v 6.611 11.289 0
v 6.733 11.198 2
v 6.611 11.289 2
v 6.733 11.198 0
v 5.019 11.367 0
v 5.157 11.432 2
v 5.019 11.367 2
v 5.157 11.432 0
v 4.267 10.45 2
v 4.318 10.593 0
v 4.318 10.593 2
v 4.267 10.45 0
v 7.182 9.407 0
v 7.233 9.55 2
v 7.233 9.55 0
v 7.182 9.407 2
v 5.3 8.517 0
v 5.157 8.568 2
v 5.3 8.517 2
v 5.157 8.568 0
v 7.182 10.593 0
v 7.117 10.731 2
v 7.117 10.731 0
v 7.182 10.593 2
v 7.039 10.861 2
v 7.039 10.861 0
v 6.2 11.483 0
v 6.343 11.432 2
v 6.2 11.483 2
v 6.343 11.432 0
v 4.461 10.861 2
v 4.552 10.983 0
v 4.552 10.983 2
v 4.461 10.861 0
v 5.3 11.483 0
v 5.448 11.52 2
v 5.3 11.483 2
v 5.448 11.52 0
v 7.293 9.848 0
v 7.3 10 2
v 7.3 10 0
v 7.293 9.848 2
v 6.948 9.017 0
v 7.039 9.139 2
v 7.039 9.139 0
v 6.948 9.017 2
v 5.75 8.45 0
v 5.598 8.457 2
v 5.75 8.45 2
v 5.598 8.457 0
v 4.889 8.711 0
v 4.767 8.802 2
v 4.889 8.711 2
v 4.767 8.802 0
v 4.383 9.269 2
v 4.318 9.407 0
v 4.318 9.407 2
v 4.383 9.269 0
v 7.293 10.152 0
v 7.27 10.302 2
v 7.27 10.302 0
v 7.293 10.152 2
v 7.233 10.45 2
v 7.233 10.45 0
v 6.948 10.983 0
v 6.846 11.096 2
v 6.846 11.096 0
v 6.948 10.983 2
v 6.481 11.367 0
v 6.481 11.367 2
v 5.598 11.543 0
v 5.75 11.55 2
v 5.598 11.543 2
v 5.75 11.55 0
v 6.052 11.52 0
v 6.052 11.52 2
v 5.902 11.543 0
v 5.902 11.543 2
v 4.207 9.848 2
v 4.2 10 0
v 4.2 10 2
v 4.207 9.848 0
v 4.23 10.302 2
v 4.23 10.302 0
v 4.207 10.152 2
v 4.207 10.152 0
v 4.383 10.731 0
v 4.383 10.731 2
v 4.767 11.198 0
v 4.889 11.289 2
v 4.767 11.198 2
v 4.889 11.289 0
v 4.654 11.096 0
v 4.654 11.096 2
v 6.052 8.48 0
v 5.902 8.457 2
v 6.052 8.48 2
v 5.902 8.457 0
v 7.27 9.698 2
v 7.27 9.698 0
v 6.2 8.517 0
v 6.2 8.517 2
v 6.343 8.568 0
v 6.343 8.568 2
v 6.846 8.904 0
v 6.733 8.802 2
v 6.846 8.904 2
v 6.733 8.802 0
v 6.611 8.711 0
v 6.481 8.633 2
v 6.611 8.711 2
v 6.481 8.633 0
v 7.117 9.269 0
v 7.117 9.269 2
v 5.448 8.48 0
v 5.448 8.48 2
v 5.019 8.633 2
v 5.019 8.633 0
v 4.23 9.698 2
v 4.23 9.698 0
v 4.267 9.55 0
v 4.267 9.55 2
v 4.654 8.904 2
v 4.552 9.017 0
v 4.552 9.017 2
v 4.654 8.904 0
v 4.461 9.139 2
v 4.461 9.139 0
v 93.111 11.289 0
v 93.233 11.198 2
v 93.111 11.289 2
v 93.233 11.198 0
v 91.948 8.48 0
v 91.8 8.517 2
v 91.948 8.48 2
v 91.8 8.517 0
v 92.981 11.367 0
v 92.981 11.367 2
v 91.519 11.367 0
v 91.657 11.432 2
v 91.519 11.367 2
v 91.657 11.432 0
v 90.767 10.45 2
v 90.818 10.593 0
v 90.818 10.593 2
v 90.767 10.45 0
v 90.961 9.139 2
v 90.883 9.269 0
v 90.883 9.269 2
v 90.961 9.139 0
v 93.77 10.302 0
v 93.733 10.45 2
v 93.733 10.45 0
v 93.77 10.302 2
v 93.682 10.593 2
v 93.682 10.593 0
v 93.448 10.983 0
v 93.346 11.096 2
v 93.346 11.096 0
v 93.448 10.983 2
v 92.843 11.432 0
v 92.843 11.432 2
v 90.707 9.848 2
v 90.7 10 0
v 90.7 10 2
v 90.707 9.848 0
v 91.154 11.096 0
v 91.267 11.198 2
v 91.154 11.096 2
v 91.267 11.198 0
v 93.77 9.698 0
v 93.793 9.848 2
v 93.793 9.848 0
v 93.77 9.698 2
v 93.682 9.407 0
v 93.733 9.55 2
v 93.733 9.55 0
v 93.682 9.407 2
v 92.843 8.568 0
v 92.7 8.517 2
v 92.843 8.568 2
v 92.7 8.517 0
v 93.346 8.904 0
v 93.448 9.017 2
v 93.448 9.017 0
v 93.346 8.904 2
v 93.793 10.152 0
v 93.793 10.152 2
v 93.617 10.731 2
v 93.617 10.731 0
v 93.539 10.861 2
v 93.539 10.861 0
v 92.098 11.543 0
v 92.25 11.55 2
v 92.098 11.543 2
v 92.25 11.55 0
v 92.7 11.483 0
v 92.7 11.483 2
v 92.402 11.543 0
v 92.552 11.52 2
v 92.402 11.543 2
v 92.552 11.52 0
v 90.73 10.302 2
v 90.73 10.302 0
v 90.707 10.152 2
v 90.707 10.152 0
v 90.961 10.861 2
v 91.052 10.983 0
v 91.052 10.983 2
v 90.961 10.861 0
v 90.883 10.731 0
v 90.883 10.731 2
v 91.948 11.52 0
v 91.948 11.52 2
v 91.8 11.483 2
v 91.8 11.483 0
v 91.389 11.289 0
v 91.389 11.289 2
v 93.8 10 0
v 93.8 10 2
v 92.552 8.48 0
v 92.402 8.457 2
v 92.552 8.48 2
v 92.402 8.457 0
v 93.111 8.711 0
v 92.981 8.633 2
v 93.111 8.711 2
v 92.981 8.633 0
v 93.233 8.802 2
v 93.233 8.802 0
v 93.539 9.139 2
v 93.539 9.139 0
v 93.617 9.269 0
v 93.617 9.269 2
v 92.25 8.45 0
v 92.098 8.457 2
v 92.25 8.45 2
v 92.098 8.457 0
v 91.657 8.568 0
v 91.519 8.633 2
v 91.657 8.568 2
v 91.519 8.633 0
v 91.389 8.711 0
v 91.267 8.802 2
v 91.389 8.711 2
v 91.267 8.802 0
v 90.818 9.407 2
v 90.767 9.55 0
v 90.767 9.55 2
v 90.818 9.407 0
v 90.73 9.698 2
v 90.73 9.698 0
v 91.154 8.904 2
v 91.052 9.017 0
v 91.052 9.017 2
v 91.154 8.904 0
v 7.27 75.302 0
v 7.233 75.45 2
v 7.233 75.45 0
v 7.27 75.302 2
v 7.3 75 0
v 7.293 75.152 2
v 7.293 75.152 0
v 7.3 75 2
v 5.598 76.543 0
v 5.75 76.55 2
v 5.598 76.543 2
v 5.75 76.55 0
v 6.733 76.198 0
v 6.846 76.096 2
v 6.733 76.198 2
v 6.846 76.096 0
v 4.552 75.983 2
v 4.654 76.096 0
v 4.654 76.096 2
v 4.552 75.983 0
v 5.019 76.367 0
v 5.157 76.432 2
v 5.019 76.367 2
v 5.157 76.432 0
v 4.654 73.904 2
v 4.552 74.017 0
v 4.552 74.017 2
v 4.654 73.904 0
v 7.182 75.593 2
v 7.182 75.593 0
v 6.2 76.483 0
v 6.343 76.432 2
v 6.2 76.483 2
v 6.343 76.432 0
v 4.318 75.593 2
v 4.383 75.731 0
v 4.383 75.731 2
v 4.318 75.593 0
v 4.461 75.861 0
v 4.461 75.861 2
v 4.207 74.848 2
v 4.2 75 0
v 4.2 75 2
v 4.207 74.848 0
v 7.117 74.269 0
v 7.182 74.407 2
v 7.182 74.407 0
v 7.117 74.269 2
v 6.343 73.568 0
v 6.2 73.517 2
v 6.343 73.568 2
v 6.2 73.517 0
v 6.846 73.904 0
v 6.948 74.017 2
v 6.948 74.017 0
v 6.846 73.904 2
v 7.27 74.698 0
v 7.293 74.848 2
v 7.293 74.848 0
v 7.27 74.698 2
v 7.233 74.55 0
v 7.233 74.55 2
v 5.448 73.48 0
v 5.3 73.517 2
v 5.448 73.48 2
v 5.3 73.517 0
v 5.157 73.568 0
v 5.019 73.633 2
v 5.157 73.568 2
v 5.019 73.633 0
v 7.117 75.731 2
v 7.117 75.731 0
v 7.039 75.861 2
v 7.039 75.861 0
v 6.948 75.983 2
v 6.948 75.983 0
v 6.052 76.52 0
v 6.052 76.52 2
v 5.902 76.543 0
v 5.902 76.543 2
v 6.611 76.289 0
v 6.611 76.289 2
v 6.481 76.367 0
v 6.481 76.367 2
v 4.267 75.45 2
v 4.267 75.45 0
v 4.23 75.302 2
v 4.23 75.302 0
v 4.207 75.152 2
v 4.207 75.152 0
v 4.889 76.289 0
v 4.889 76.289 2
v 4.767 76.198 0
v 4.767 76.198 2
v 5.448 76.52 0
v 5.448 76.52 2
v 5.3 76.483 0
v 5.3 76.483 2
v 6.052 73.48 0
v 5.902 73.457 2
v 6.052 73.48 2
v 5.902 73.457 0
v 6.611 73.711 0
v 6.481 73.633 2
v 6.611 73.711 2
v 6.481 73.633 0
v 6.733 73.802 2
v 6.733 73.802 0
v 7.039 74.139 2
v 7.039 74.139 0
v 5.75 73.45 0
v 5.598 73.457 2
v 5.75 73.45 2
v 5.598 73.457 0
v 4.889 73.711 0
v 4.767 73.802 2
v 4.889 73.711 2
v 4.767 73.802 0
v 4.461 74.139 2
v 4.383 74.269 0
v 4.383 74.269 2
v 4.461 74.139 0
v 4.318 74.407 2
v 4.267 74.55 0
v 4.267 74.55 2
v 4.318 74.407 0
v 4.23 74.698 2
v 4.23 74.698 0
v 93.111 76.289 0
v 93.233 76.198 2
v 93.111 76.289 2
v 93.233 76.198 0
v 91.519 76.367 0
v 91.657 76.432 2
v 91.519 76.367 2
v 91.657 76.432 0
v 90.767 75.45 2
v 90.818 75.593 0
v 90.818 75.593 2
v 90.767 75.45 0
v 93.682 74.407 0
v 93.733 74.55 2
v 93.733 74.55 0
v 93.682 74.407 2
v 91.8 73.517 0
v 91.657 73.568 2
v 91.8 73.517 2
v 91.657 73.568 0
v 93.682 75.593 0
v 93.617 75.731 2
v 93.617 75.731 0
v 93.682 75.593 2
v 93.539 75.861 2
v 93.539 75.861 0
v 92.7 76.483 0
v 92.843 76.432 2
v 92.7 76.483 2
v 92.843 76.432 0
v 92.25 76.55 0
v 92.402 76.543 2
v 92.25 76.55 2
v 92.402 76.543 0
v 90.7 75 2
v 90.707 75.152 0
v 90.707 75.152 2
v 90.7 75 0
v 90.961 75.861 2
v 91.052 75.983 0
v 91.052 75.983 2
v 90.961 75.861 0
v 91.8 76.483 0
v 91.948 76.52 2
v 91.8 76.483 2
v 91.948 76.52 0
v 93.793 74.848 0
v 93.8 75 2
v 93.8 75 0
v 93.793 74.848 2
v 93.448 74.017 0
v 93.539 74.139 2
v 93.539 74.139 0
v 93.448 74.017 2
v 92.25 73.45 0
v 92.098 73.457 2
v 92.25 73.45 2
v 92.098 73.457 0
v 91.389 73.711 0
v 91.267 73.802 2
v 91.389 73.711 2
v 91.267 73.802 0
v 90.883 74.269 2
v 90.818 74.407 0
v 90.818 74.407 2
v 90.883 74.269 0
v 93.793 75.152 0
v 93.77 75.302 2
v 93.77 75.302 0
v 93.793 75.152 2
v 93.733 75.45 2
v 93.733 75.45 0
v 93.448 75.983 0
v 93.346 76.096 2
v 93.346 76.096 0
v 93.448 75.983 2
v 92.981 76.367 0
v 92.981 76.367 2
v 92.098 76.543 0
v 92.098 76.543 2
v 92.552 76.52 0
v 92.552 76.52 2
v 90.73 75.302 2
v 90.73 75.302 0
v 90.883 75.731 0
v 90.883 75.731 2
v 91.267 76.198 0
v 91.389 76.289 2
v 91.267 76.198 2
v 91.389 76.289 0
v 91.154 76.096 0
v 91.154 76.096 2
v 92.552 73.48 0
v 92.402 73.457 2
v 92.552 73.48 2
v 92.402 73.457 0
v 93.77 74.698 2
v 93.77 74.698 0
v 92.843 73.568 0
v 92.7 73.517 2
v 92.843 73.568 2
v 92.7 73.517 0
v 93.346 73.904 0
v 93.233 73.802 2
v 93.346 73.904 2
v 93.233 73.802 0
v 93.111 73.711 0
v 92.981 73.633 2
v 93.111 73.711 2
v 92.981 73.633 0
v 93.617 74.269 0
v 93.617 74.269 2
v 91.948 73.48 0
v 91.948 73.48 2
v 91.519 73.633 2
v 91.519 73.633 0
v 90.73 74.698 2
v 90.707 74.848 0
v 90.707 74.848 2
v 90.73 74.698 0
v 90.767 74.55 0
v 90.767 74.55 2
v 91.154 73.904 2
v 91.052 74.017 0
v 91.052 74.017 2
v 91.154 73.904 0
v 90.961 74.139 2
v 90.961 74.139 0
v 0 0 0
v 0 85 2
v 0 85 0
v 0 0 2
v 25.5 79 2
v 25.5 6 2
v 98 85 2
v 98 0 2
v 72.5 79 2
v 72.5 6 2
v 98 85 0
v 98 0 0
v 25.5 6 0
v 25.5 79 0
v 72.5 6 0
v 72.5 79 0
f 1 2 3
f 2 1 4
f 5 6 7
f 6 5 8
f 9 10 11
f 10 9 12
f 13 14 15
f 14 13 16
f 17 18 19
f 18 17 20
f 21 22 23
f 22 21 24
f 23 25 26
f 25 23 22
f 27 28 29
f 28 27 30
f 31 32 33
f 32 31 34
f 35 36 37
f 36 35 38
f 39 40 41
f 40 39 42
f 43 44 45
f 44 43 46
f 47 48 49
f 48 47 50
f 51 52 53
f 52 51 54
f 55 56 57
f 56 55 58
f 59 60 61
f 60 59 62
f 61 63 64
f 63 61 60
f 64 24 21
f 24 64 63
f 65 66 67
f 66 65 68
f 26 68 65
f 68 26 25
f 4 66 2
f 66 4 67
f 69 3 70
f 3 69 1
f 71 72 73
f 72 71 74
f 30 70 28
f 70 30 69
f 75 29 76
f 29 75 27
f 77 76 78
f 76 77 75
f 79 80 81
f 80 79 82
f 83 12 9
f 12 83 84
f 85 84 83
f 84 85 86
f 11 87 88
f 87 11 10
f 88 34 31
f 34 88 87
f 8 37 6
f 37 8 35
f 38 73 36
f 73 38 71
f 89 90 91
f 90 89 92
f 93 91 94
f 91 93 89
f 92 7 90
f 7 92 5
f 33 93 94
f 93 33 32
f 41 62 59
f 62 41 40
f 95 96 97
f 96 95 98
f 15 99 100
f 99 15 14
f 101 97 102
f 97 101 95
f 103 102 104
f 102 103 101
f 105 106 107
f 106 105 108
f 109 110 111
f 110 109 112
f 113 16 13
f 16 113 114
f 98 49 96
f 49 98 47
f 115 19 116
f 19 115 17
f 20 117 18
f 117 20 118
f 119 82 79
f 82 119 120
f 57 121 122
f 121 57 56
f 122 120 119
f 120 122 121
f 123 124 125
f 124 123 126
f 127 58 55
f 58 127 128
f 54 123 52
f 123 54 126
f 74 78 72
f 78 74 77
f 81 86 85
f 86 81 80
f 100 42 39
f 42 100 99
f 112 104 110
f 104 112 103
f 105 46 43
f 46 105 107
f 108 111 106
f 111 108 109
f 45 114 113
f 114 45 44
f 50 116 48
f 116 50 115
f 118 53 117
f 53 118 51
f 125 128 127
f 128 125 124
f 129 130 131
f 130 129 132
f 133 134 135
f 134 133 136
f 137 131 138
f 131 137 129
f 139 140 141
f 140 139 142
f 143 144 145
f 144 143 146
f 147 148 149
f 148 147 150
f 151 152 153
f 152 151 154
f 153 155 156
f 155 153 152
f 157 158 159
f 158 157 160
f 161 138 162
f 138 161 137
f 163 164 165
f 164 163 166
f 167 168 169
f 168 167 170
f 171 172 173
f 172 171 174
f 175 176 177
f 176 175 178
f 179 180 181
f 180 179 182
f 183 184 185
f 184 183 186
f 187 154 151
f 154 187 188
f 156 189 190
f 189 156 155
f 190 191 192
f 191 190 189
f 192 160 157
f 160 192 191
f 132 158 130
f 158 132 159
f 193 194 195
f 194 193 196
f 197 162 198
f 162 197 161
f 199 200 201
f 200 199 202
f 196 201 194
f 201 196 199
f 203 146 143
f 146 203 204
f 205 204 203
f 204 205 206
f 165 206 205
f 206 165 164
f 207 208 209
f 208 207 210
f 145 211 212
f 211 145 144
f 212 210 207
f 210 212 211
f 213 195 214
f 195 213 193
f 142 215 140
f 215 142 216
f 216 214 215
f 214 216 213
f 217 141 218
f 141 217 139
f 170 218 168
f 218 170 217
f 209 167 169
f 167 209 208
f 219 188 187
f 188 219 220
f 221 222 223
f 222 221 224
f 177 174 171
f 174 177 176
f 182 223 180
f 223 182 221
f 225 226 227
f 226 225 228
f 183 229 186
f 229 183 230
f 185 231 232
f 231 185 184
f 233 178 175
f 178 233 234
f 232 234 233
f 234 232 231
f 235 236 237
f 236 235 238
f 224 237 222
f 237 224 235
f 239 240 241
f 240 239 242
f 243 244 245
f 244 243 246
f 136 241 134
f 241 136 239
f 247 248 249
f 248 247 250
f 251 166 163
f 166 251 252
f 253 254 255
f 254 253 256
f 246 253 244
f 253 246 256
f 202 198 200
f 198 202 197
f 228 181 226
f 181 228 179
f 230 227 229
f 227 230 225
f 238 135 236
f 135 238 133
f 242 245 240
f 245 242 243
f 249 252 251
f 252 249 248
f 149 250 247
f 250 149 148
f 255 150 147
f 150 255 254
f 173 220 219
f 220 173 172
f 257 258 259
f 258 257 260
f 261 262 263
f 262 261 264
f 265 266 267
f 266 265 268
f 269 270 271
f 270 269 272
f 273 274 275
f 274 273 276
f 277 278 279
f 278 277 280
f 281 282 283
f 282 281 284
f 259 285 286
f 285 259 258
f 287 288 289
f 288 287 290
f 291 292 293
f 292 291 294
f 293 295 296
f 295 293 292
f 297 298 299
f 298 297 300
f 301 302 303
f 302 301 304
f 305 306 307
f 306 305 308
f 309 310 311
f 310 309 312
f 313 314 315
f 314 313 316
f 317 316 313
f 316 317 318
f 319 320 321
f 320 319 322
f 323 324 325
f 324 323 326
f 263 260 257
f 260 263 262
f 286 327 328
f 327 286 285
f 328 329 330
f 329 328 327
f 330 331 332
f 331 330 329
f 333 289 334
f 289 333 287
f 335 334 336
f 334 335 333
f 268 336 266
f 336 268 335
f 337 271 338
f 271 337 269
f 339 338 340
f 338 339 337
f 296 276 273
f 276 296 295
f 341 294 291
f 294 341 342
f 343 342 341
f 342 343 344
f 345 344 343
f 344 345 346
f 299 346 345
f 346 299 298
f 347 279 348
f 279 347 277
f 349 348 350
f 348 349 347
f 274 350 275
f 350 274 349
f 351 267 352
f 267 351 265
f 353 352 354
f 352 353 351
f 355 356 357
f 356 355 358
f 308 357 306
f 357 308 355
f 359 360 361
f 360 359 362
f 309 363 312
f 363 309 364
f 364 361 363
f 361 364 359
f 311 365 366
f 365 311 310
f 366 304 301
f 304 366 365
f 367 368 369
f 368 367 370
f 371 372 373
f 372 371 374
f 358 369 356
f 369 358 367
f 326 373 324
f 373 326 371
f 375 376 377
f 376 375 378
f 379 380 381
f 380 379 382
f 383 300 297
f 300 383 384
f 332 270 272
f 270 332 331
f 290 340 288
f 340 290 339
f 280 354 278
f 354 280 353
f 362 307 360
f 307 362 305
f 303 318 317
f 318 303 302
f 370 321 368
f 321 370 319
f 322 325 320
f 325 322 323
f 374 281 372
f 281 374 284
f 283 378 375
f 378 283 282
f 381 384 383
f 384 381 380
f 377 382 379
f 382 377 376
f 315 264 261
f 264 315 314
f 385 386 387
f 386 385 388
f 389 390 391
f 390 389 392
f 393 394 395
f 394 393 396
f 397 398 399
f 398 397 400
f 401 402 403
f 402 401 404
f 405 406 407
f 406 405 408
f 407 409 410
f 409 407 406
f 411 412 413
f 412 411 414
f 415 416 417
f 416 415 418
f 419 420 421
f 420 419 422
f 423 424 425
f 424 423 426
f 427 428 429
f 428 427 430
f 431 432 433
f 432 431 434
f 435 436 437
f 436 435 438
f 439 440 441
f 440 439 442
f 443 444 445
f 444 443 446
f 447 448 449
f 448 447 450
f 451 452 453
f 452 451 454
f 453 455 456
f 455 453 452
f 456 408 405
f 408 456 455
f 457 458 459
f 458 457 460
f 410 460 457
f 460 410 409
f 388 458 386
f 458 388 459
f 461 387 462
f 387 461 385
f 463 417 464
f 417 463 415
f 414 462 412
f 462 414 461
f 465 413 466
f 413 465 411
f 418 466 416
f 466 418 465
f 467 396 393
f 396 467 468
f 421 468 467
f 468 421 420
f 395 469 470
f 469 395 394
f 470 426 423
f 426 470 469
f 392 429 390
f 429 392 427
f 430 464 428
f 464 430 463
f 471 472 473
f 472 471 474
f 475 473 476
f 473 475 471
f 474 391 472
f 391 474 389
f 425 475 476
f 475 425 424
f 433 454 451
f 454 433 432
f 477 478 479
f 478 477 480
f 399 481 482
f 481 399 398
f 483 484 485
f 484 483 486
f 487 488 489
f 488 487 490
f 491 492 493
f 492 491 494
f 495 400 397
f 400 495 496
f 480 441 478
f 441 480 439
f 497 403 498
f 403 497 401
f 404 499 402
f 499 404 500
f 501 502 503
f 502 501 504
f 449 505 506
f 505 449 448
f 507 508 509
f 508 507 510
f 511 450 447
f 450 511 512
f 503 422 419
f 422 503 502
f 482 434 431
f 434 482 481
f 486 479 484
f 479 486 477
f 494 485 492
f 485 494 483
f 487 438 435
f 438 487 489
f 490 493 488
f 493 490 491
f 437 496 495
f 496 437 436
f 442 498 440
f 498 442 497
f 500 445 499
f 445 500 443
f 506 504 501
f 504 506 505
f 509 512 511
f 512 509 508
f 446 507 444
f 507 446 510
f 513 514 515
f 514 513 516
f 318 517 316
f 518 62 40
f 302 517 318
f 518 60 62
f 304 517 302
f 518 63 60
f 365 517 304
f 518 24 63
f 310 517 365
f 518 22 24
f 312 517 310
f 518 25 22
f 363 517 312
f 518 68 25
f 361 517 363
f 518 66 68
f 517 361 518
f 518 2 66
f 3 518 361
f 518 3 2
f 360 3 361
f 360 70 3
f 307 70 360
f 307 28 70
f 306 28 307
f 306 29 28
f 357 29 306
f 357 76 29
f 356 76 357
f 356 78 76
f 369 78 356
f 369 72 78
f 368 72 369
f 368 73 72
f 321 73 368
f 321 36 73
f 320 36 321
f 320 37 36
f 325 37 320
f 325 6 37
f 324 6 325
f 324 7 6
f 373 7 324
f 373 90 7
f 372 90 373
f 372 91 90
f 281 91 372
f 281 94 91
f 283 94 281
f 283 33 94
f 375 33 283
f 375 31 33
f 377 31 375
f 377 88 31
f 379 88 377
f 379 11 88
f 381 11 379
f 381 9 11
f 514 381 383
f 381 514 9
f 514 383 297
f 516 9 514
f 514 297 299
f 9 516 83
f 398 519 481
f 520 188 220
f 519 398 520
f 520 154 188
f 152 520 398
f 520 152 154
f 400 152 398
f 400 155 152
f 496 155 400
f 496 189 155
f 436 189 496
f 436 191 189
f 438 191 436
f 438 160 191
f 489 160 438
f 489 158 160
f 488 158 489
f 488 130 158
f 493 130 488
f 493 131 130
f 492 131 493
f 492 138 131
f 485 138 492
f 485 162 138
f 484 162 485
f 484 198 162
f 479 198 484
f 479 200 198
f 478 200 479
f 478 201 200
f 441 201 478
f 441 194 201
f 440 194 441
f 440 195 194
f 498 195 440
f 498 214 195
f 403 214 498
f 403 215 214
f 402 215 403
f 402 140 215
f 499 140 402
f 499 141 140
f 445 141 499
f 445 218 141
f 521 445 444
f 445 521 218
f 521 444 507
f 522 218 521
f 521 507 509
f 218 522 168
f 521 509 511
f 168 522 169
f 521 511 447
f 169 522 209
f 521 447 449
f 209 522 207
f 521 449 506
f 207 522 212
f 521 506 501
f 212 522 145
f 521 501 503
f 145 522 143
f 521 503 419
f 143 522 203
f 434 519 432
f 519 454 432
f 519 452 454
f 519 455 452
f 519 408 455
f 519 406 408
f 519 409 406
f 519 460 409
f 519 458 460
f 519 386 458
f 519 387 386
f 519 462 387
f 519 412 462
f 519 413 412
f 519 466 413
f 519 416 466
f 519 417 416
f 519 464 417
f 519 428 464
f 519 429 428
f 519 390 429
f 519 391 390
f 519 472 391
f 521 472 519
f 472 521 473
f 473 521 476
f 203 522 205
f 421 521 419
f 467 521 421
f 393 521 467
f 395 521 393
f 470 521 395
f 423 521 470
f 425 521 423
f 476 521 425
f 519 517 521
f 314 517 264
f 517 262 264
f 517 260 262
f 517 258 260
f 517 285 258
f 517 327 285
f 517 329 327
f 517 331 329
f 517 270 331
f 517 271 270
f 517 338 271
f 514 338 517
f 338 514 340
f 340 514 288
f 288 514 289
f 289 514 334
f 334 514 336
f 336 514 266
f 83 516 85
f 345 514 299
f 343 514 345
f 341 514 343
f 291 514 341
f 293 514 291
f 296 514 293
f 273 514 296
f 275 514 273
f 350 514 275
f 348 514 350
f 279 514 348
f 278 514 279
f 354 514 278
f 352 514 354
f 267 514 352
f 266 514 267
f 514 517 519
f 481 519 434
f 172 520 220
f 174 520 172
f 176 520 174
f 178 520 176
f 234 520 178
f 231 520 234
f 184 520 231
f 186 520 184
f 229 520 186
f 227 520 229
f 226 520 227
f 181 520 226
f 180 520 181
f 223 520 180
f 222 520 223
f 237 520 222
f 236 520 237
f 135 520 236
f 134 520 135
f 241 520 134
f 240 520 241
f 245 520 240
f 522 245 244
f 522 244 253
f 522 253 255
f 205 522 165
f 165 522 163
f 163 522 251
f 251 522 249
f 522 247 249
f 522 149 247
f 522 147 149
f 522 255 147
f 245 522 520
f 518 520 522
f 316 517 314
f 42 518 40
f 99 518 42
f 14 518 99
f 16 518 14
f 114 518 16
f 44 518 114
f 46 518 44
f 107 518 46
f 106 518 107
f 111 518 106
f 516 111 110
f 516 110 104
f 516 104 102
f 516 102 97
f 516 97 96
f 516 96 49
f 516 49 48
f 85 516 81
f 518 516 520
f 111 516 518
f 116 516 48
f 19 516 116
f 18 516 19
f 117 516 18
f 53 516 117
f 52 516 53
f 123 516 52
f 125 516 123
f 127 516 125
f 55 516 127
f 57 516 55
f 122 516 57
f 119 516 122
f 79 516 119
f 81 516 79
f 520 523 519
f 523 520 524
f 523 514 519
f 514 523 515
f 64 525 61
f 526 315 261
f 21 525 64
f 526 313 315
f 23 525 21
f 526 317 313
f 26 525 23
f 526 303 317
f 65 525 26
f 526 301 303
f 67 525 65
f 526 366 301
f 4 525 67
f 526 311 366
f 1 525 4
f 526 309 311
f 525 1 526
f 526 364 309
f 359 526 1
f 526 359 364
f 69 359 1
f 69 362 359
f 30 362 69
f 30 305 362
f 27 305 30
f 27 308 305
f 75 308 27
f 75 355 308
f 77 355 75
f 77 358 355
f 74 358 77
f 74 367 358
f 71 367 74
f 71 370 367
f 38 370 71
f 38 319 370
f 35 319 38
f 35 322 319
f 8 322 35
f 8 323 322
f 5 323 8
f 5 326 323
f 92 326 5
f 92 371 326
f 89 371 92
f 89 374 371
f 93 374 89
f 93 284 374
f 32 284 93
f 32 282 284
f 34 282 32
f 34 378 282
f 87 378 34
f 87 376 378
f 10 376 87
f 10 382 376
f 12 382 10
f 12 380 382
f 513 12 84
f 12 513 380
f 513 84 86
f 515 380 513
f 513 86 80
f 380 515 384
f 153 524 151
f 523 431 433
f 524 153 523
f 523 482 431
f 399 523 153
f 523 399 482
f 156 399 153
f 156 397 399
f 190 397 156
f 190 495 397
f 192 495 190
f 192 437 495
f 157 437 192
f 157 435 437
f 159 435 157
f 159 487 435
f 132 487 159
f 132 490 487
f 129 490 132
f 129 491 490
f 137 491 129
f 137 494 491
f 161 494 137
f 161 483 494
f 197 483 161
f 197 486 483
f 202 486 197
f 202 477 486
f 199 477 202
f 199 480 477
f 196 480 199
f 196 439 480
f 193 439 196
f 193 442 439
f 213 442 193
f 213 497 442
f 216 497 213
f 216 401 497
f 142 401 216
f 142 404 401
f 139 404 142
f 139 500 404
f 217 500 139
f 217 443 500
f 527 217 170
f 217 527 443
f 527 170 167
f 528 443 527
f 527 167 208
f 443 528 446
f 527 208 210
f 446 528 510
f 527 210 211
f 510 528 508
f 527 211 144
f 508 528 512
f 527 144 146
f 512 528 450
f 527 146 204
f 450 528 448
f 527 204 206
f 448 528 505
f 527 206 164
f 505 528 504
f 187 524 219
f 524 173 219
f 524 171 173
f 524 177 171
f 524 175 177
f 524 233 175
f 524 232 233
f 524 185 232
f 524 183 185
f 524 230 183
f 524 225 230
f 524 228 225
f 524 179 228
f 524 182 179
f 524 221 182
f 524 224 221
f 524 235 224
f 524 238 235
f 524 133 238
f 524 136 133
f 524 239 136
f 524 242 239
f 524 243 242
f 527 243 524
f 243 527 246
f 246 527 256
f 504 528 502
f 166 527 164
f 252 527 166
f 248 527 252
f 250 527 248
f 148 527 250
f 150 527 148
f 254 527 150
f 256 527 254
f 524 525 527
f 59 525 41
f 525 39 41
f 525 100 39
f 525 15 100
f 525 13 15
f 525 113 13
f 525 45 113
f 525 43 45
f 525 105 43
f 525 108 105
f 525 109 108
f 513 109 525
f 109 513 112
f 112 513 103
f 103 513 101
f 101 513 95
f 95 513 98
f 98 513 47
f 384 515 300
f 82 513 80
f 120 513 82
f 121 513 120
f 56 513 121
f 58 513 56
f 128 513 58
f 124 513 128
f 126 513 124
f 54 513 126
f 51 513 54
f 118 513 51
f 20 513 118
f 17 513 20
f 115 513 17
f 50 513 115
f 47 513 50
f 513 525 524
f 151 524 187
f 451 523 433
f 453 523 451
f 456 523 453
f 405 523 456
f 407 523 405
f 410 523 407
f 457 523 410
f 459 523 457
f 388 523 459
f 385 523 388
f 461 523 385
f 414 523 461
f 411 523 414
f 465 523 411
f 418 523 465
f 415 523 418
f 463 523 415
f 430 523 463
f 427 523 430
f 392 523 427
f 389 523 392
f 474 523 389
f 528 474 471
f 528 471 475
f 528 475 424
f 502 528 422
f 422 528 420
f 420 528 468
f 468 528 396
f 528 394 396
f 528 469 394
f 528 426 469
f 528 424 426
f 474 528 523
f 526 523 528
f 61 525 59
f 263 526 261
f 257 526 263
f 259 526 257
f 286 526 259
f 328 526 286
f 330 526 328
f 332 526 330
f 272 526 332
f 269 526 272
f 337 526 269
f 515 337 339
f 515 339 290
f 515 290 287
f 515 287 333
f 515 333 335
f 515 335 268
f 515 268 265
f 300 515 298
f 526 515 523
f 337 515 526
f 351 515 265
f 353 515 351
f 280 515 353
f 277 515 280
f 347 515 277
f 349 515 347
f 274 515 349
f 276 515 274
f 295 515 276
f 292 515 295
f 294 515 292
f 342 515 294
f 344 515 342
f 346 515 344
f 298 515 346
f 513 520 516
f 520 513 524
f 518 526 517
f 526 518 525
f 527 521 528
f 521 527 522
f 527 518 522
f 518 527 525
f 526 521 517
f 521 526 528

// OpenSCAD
dim_x = 98;
dim_y = 85;
dim_z = 2;

area_1_x = 11.5;
area_2_x = 14;

area_2_y = 6;

hole_dia = 3.1;
hole_y_offset = 10;

thickness = 2;

f = 0.01;
df = f * 2;

$fn = 64;

module screw_hole() {
    cylinder(d = hole_dia, h = thickness + df);
}

difference() {
    cube([dim_x, dim_y, dim_z]);
    for(y = [hole_y_offset, dim_y - hole_y_offset]) {
        for (x = [area_1_x/2, dim_x - area_1_x/2])  {
            translate([x, y, -f])
                screw_hole();
        }
    }
    translate([area_1_x + area_2_x, area_2_y, -f]) {
        cube([dim_x - 2 * area_1_x - 2 * area_2_x, dim_y - 2 * area_2_y, thickness + df]);
    }
}
    
